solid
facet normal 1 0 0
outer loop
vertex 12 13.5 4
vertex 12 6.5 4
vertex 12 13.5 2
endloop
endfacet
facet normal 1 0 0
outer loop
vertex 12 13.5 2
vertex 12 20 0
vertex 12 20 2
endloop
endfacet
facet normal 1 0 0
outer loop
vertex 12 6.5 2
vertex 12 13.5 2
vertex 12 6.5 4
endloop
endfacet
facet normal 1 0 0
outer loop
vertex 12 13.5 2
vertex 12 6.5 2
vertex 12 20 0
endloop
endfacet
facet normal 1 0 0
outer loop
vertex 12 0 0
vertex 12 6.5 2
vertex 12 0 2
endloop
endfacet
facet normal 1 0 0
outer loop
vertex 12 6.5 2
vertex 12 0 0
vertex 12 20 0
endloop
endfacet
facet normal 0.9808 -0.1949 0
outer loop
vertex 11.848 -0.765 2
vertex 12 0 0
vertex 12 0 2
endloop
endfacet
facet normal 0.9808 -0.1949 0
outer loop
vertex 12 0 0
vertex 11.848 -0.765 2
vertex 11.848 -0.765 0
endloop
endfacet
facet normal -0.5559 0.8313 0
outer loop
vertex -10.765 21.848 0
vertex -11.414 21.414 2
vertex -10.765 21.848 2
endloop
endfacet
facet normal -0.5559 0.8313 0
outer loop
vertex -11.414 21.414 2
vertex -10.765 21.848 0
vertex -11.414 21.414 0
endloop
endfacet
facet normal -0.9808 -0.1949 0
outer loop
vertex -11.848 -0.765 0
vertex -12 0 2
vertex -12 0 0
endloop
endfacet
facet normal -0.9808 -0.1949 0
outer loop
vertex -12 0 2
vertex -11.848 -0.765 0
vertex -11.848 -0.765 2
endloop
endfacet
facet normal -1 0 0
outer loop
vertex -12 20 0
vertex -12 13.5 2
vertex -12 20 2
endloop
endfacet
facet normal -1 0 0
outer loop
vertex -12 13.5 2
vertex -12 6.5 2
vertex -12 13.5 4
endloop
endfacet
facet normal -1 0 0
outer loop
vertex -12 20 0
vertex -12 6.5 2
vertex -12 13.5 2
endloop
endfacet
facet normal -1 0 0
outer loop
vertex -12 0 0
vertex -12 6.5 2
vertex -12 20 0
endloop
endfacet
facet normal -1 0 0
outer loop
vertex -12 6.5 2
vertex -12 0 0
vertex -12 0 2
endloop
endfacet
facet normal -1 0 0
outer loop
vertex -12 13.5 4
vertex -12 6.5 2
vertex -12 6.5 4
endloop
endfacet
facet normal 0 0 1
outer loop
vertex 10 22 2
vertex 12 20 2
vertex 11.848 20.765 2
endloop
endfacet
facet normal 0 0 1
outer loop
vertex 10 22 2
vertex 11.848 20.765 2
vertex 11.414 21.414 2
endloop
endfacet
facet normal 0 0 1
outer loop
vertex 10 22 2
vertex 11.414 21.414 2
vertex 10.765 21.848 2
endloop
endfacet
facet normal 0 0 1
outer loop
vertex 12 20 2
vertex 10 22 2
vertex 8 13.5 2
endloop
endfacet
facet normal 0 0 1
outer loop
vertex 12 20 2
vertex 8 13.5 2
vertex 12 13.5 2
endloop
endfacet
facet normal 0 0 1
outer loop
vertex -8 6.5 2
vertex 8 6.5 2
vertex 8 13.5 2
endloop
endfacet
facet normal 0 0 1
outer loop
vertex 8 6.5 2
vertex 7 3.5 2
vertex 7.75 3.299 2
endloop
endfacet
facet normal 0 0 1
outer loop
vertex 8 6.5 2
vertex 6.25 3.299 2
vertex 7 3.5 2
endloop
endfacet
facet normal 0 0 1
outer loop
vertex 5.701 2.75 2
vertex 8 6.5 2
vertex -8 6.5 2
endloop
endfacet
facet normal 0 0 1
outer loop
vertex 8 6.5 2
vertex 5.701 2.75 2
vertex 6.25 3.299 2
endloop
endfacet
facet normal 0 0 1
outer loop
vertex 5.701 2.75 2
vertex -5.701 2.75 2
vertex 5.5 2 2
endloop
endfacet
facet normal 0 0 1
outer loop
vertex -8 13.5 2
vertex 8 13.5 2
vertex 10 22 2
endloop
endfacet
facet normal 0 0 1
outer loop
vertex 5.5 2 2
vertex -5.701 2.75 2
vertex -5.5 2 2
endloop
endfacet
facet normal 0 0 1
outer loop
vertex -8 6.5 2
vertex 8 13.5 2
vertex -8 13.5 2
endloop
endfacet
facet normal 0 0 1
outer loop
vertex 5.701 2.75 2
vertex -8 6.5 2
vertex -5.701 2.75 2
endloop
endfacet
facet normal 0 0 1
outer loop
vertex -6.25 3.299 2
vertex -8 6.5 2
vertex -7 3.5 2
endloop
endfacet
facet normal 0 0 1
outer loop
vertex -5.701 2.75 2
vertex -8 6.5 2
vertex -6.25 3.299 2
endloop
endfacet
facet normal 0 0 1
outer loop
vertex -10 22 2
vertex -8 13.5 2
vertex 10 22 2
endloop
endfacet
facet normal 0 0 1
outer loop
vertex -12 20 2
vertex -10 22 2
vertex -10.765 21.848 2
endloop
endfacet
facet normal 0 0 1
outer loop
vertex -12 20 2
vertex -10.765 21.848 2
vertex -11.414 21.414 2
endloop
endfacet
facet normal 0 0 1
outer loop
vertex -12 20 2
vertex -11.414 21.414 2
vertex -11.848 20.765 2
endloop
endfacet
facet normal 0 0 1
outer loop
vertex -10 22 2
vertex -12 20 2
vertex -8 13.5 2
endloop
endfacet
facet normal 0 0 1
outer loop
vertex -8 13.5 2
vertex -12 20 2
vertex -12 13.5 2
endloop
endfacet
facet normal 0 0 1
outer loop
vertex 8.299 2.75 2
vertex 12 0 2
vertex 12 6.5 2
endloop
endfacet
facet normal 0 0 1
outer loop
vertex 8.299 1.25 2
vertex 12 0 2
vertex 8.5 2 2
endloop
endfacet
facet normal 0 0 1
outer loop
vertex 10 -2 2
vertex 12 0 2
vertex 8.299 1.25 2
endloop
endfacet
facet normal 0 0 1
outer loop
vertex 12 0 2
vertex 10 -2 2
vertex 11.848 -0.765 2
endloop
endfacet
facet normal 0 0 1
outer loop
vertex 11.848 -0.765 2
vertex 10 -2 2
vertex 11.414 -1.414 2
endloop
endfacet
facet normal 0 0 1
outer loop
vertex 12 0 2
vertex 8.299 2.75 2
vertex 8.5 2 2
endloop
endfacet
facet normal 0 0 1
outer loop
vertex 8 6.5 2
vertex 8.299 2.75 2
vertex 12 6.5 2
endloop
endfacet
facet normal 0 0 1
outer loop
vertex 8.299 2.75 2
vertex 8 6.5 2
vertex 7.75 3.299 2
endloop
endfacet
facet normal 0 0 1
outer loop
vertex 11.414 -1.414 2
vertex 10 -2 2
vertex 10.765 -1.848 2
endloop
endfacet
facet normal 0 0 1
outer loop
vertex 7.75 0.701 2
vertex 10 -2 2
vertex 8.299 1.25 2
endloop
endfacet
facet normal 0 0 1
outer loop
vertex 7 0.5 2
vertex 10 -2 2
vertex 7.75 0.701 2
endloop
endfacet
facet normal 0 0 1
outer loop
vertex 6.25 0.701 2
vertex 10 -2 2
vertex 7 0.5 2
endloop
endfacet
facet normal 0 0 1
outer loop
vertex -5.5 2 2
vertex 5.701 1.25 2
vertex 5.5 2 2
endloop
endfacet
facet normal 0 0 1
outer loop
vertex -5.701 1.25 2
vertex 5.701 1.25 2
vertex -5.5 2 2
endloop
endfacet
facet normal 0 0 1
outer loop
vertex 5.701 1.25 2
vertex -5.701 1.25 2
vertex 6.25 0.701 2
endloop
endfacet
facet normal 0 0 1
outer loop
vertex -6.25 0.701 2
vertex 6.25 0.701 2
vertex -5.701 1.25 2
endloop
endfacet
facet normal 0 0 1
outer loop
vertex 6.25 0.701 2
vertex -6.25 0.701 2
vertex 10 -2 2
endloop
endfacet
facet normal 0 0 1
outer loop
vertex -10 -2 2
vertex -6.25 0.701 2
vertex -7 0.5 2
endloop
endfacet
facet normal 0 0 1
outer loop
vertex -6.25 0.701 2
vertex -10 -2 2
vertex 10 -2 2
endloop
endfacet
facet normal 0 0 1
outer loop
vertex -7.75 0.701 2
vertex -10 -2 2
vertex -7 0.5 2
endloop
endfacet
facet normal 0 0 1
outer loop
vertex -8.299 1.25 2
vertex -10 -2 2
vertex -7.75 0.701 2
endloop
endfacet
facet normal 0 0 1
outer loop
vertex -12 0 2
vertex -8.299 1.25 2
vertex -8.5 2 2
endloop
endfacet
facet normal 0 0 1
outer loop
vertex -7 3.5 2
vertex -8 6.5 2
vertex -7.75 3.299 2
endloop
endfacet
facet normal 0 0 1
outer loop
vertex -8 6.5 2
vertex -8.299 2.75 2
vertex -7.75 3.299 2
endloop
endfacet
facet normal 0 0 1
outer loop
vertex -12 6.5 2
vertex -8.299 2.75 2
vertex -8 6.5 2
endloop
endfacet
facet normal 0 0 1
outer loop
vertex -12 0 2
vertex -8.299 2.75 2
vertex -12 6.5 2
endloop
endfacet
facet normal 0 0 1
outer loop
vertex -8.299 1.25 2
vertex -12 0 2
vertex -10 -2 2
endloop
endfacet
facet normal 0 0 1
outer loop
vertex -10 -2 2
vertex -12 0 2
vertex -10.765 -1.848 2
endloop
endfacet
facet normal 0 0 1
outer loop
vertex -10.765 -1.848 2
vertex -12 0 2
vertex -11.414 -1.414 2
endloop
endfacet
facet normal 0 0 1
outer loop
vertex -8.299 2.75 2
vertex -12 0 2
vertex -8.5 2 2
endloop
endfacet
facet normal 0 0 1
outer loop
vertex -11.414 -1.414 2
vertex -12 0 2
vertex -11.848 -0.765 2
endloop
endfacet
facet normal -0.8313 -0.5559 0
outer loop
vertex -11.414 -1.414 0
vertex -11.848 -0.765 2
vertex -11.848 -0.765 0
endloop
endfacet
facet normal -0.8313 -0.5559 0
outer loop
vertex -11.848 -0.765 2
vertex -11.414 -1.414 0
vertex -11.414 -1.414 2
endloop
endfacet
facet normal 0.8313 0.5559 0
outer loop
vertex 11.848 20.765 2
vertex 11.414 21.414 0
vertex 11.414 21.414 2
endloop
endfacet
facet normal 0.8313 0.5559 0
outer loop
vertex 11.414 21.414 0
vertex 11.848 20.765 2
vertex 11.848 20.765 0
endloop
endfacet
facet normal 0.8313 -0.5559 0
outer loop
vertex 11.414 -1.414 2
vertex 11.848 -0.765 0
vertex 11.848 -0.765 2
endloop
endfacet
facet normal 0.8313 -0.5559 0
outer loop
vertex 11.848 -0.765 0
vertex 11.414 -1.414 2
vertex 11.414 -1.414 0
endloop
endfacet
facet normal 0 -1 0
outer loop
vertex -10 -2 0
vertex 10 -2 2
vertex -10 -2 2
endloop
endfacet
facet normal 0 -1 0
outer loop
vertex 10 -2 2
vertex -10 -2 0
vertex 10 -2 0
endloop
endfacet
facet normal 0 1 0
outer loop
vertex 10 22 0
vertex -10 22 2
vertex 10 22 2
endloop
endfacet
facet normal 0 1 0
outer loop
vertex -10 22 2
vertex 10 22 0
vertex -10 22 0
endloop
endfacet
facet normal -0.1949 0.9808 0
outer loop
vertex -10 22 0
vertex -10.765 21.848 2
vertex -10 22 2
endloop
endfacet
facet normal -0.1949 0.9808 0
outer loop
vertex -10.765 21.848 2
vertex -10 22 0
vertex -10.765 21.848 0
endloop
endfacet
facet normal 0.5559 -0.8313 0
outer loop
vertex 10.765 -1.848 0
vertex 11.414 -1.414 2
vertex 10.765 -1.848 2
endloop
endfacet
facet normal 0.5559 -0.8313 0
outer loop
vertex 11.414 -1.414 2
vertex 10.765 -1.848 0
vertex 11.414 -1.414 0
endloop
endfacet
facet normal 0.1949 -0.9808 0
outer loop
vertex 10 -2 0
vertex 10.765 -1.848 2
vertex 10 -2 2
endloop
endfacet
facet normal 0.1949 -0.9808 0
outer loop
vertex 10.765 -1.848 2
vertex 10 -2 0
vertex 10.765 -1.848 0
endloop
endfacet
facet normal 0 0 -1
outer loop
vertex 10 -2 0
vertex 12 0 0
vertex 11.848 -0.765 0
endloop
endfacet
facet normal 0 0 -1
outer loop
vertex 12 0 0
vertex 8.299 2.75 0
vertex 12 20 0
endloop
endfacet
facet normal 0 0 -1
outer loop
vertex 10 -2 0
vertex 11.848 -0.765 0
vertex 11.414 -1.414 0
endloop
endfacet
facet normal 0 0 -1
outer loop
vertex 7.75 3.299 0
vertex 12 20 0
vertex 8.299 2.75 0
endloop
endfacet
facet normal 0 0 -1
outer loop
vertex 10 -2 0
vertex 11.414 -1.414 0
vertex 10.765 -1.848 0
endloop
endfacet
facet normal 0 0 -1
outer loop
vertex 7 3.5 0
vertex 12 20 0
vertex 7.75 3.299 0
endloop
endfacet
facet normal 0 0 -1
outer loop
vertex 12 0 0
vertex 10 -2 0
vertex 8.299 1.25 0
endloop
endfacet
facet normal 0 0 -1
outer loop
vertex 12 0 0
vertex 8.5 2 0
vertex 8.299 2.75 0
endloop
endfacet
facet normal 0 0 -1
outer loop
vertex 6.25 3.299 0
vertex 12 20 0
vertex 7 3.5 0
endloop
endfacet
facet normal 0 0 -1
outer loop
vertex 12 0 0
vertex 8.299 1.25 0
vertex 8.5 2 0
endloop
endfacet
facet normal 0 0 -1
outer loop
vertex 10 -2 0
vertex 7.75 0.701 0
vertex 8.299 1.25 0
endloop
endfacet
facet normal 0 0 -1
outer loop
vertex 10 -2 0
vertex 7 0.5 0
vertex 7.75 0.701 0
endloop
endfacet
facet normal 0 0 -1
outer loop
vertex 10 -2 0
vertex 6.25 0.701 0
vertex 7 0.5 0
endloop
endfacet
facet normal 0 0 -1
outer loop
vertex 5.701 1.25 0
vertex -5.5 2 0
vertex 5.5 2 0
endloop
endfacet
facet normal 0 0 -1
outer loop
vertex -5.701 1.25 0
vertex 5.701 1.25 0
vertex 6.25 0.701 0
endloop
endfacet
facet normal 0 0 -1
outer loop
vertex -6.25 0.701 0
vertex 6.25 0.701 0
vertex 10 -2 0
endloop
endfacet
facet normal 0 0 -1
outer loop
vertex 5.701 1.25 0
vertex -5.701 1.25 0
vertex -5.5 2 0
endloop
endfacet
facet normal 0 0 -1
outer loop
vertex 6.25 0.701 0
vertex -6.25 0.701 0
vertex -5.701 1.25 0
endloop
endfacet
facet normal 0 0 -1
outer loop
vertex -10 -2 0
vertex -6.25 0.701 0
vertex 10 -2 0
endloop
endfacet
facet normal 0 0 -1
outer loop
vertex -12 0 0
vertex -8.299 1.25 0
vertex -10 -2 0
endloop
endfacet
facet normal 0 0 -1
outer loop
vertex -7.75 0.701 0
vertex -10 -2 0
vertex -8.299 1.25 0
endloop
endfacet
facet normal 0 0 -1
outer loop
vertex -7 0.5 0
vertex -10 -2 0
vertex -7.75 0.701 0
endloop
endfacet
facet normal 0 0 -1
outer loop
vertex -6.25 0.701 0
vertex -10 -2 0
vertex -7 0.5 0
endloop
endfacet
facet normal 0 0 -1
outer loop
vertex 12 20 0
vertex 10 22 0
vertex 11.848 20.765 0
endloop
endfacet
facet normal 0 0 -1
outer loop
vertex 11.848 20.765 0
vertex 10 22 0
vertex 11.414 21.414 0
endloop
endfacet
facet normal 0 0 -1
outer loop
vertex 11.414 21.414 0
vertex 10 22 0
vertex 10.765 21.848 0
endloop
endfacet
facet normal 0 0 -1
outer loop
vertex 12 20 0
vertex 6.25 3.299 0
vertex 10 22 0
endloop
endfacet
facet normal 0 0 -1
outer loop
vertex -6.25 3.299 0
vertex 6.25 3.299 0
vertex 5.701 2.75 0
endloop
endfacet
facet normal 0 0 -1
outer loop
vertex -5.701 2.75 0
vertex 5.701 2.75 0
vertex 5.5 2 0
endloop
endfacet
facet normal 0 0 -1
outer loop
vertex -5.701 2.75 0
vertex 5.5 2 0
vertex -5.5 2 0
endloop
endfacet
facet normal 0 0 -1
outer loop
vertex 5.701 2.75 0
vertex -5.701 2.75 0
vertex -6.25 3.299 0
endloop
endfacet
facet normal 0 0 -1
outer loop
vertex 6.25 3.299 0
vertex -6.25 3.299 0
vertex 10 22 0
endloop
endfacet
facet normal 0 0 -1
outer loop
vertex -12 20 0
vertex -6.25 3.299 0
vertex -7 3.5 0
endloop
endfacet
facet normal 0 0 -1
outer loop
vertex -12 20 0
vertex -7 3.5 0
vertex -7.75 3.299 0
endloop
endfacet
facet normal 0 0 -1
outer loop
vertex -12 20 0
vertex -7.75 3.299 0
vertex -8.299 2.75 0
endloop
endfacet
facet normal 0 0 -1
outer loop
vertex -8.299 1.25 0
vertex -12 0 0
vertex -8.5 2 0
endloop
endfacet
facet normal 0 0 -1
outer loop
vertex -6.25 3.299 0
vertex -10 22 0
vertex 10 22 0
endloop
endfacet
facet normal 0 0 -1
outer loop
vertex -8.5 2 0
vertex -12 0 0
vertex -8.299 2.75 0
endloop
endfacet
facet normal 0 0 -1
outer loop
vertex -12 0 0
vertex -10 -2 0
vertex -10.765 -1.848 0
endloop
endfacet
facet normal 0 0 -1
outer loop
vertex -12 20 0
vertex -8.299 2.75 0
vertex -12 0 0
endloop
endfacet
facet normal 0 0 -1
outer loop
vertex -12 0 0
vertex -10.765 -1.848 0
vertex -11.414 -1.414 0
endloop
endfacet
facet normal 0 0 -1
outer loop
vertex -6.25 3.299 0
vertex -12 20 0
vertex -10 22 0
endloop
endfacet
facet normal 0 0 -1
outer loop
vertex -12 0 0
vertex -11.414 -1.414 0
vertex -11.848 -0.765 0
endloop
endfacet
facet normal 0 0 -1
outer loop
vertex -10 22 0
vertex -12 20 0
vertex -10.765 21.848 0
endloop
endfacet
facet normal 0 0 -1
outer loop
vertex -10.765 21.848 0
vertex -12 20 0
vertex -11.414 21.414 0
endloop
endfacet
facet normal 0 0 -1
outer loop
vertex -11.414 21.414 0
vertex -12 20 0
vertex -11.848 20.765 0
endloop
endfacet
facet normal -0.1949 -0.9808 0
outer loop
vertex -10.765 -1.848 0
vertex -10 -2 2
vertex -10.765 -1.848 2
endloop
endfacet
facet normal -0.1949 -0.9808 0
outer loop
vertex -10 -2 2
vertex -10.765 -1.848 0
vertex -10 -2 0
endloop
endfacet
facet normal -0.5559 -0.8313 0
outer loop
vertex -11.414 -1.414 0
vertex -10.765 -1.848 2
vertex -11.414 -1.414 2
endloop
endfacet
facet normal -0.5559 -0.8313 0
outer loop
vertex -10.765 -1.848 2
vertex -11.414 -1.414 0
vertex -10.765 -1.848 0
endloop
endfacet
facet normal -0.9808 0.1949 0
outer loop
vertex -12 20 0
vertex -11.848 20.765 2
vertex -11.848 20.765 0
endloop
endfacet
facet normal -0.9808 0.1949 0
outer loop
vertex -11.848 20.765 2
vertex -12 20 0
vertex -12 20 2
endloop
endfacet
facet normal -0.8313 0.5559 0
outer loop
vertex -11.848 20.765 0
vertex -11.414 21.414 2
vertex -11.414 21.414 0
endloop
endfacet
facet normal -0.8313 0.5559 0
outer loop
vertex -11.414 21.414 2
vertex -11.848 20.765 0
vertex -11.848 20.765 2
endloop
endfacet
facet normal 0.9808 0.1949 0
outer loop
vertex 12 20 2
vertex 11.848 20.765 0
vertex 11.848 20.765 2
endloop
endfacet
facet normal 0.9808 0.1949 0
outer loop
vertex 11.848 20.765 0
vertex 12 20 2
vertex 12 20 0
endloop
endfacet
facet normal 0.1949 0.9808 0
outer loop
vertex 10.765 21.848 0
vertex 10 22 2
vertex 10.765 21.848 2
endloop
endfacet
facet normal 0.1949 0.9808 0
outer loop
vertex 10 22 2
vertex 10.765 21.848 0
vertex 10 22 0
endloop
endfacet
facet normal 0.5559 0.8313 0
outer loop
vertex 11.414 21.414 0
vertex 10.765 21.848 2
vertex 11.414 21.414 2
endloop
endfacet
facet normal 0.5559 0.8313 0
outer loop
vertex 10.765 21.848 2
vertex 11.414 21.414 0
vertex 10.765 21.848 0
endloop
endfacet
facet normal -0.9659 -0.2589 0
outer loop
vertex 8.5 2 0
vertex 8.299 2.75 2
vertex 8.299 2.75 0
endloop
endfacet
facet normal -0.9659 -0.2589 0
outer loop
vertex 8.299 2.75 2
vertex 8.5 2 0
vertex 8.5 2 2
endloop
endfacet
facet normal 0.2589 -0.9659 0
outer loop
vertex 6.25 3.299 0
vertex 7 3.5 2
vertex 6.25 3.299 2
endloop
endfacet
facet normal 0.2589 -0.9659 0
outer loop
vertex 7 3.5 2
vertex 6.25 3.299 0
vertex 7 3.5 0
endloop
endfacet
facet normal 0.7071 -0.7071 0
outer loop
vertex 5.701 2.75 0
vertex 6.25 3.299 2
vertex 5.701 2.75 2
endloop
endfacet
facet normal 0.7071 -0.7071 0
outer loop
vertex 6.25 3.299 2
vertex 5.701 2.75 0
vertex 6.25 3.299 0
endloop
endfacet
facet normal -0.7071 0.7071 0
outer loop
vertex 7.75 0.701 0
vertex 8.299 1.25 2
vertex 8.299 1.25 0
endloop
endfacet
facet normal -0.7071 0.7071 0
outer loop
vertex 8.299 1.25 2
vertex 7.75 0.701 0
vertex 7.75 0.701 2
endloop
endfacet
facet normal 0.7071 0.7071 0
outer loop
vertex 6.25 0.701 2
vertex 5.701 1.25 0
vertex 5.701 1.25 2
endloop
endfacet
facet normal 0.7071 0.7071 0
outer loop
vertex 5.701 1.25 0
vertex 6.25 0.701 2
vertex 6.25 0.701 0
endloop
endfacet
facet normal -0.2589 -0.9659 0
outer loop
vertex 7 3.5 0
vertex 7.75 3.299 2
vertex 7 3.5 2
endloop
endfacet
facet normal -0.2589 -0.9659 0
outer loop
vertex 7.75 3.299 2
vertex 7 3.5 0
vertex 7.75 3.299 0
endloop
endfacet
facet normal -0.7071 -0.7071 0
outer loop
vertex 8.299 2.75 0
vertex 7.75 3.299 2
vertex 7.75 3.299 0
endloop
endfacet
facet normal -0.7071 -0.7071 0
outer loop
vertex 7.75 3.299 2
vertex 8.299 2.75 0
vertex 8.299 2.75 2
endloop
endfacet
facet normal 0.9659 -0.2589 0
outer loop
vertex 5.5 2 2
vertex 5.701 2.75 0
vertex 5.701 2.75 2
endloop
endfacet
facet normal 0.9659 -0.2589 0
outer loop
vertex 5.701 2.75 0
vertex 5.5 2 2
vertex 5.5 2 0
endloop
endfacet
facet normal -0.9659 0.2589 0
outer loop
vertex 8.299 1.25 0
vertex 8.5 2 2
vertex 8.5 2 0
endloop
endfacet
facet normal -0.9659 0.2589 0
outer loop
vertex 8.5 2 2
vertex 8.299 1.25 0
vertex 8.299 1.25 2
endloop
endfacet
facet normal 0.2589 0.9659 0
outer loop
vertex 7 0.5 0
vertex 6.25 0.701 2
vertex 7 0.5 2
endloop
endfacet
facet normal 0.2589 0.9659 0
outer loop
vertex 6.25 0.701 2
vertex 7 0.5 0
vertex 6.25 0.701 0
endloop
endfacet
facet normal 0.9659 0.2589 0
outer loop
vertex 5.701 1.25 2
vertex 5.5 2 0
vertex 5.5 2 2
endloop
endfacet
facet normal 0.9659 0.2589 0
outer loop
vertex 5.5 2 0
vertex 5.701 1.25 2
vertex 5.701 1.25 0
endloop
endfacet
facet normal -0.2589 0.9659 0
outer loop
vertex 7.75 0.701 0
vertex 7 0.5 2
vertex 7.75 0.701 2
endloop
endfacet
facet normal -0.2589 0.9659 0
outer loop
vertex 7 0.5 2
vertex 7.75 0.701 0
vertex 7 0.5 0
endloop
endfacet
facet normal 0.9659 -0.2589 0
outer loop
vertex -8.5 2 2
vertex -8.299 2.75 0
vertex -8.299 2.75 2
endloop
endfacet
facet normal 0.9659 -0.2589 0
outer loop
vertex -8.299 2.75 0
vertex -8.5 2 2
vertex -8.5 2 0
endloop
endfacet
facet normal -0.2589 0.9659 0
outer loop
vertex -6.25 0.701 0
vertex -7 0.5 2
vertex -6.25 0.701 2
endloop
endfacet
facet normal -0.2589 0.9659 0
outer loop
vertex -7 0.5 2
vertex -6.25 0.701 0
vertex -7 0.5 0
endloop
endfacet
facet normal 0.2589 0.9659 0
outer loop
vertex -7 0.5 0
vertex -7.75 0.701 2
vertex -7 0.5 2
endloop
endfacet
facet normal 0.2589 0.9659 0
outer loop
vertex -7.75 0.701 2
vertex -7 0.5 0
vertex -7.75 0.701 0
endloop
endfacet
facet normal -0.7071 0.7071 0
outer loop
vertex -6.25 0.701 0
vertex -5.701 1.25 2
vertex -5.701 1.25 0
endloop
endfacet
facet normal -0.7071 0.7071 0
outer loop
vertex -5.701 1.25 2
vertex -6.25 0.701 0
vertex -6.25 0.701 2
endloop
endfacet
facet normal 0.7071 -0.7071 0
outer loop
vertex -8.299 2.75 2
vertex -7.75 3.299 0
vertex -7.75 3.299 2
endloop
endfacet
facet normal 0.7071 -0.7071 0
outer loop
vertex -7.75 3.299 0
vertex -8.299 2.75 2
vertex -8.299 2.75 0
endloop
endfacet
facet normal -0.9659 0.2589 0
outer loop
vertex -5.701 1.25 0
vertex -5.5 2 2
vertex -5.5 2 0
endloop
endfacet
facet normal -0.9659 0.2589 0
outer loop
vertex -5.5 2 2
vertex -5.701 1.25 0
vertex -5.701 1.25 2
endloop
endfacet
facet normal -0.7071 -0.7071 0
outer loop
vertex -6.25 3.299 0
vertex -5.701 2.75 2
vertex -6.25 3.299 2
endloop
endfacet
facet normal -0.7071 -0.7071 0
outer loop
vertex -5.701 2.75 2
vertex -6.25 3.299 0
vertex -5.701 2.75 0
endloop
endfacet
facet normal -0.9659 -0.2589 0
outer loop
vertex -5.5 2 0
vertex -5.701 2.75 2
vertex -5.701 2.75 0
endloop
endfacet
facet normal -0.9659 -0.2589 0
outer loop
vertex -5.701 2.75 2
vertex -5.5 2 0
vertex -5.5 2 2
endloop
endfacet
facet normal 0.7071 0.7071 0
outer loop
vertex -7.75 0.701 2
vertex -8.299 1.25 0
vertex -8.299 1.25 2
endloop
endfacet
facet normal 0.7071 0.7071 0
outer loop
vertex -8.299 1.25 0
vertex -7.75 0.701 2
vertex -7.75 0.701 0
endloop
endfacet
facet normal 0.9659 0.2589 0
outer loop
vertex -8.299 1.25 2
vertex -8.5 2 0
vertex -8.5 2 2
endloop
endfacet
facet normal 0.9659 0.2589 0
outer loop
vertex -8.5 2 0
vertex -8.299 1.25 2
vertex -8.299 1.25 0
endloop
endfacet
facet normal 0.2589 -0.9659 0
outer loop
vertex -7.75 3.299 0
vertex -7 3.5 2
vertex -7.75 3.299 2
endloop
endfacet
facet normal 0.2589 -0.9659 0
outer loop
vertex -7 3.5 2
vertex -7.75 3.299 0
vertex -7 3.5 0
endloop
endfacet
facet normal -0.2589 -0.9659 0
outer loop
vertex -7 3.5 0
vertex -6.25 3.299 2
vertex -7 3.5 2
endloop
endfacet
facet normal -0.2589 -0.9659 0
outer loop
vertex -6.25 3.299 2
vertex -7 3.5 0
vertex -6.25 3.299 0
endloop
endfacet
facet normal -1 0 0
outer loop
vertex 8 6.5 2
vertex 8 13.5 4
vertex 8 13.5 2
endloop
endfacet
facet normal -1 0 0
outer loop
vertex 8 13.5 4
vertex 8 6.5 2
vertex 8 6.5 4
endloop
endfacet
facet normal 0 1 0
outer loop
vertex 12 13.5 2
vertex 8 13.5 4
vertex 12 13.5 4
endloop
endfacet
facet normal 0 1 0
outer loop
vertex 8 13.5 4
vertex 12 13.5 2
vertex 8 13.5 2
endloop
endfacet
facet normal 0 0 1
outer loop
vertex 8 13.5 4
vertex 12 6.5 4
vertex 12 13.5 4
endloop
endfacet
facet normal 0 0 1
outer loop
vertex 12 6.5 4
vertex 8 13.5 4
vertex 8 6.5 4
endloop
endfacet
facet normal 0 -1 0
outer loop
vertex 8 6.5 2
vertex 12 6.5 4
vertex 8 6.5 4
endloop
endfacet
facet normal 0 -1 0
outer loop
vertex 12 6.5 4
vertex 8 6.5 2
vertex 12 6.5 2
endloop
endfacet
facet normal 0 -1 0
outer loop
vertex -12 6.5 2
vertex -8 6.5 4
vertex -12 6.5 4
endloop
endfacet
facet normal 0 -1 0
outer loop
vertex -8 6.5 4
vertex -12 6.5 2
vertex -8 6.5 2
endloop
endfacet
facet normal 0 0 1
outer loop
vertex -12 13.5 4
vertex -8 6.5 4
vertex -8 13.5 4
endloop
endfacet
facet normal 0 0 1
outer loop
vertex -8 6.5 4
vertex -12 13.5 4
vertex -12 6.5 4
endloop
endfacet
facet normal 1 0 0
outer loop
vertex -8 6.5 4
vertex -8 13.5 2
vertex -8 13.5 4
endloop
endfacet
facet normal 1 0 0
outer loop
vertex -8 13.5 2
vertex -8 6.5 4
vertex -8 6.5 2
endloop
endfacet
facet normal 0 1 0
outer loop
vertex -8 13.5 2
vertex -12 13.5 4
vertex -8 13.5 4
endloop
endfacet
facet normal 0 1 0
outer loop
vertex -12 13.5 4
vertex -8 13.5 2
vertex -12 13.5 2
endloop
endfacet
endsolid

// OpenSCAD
// file: ../lib/roundedRect.scad
module roundedRect2(size, radius) {
    translate([radius, radius, 0]) minkowski() {
        cube([size[0] - 2 * radius , size[1] - 2 * radius, size[2] -1]);
        cylinder(r=radius, h=1);
    }
}

module roundedRect(size, radius) {
    minkowski() {
        cube(size);
        cylinder(r=2,h=1);
    }
}
// main file
$fa=2;
$fs=0.8;

use <../lib/roundedRect.scad>;

width = 20;
height = 20;
thickness = 1;
holesDistance = 14;

module hole() {
    translate([holesDistance/2, 2, -1]) cylinder(h = 10, d = 3);
}

module insets() {
    x = 4;
    y = 7;
    z = 2;
    CubePoints = [
  [  0,  0,  0 ],  //0
  [ x,  0,  0 ],  //1
  [ x,  y,  0 ],  //2
  [  0,  y,  0 ],  //3
  [  0,  0,  z ],  //4
  [ x,  0,  z ],  //5
  [ x,  y,  z ],  //6
  [  0,  y,  z ]]; //7
  
    CubeFaces = [
  [0,1,2,3],  // bottom
  [4,5,1,0],  // front
  [7,6,5,4],  // top
  [5,6,2,1],  // right
  [6,7,3,2],  // back
  [7,4,0,3]]; // left
  
    translate([x*2, (width - y)/2, 2]) polyhedron( CubePoints, CubeFaces );
}

module bottom(w, h, t) {
     union() {
        difference() {
            translate([-w/2, 0, 0]) roundedRect([w, h, t]);
            hole();
            mirror([1, 0, 0]) hole();
        }
        insets();
        mirror([1, 0, 0]) insets();
    }
}
 
bottom(width, height, thickness);
 
